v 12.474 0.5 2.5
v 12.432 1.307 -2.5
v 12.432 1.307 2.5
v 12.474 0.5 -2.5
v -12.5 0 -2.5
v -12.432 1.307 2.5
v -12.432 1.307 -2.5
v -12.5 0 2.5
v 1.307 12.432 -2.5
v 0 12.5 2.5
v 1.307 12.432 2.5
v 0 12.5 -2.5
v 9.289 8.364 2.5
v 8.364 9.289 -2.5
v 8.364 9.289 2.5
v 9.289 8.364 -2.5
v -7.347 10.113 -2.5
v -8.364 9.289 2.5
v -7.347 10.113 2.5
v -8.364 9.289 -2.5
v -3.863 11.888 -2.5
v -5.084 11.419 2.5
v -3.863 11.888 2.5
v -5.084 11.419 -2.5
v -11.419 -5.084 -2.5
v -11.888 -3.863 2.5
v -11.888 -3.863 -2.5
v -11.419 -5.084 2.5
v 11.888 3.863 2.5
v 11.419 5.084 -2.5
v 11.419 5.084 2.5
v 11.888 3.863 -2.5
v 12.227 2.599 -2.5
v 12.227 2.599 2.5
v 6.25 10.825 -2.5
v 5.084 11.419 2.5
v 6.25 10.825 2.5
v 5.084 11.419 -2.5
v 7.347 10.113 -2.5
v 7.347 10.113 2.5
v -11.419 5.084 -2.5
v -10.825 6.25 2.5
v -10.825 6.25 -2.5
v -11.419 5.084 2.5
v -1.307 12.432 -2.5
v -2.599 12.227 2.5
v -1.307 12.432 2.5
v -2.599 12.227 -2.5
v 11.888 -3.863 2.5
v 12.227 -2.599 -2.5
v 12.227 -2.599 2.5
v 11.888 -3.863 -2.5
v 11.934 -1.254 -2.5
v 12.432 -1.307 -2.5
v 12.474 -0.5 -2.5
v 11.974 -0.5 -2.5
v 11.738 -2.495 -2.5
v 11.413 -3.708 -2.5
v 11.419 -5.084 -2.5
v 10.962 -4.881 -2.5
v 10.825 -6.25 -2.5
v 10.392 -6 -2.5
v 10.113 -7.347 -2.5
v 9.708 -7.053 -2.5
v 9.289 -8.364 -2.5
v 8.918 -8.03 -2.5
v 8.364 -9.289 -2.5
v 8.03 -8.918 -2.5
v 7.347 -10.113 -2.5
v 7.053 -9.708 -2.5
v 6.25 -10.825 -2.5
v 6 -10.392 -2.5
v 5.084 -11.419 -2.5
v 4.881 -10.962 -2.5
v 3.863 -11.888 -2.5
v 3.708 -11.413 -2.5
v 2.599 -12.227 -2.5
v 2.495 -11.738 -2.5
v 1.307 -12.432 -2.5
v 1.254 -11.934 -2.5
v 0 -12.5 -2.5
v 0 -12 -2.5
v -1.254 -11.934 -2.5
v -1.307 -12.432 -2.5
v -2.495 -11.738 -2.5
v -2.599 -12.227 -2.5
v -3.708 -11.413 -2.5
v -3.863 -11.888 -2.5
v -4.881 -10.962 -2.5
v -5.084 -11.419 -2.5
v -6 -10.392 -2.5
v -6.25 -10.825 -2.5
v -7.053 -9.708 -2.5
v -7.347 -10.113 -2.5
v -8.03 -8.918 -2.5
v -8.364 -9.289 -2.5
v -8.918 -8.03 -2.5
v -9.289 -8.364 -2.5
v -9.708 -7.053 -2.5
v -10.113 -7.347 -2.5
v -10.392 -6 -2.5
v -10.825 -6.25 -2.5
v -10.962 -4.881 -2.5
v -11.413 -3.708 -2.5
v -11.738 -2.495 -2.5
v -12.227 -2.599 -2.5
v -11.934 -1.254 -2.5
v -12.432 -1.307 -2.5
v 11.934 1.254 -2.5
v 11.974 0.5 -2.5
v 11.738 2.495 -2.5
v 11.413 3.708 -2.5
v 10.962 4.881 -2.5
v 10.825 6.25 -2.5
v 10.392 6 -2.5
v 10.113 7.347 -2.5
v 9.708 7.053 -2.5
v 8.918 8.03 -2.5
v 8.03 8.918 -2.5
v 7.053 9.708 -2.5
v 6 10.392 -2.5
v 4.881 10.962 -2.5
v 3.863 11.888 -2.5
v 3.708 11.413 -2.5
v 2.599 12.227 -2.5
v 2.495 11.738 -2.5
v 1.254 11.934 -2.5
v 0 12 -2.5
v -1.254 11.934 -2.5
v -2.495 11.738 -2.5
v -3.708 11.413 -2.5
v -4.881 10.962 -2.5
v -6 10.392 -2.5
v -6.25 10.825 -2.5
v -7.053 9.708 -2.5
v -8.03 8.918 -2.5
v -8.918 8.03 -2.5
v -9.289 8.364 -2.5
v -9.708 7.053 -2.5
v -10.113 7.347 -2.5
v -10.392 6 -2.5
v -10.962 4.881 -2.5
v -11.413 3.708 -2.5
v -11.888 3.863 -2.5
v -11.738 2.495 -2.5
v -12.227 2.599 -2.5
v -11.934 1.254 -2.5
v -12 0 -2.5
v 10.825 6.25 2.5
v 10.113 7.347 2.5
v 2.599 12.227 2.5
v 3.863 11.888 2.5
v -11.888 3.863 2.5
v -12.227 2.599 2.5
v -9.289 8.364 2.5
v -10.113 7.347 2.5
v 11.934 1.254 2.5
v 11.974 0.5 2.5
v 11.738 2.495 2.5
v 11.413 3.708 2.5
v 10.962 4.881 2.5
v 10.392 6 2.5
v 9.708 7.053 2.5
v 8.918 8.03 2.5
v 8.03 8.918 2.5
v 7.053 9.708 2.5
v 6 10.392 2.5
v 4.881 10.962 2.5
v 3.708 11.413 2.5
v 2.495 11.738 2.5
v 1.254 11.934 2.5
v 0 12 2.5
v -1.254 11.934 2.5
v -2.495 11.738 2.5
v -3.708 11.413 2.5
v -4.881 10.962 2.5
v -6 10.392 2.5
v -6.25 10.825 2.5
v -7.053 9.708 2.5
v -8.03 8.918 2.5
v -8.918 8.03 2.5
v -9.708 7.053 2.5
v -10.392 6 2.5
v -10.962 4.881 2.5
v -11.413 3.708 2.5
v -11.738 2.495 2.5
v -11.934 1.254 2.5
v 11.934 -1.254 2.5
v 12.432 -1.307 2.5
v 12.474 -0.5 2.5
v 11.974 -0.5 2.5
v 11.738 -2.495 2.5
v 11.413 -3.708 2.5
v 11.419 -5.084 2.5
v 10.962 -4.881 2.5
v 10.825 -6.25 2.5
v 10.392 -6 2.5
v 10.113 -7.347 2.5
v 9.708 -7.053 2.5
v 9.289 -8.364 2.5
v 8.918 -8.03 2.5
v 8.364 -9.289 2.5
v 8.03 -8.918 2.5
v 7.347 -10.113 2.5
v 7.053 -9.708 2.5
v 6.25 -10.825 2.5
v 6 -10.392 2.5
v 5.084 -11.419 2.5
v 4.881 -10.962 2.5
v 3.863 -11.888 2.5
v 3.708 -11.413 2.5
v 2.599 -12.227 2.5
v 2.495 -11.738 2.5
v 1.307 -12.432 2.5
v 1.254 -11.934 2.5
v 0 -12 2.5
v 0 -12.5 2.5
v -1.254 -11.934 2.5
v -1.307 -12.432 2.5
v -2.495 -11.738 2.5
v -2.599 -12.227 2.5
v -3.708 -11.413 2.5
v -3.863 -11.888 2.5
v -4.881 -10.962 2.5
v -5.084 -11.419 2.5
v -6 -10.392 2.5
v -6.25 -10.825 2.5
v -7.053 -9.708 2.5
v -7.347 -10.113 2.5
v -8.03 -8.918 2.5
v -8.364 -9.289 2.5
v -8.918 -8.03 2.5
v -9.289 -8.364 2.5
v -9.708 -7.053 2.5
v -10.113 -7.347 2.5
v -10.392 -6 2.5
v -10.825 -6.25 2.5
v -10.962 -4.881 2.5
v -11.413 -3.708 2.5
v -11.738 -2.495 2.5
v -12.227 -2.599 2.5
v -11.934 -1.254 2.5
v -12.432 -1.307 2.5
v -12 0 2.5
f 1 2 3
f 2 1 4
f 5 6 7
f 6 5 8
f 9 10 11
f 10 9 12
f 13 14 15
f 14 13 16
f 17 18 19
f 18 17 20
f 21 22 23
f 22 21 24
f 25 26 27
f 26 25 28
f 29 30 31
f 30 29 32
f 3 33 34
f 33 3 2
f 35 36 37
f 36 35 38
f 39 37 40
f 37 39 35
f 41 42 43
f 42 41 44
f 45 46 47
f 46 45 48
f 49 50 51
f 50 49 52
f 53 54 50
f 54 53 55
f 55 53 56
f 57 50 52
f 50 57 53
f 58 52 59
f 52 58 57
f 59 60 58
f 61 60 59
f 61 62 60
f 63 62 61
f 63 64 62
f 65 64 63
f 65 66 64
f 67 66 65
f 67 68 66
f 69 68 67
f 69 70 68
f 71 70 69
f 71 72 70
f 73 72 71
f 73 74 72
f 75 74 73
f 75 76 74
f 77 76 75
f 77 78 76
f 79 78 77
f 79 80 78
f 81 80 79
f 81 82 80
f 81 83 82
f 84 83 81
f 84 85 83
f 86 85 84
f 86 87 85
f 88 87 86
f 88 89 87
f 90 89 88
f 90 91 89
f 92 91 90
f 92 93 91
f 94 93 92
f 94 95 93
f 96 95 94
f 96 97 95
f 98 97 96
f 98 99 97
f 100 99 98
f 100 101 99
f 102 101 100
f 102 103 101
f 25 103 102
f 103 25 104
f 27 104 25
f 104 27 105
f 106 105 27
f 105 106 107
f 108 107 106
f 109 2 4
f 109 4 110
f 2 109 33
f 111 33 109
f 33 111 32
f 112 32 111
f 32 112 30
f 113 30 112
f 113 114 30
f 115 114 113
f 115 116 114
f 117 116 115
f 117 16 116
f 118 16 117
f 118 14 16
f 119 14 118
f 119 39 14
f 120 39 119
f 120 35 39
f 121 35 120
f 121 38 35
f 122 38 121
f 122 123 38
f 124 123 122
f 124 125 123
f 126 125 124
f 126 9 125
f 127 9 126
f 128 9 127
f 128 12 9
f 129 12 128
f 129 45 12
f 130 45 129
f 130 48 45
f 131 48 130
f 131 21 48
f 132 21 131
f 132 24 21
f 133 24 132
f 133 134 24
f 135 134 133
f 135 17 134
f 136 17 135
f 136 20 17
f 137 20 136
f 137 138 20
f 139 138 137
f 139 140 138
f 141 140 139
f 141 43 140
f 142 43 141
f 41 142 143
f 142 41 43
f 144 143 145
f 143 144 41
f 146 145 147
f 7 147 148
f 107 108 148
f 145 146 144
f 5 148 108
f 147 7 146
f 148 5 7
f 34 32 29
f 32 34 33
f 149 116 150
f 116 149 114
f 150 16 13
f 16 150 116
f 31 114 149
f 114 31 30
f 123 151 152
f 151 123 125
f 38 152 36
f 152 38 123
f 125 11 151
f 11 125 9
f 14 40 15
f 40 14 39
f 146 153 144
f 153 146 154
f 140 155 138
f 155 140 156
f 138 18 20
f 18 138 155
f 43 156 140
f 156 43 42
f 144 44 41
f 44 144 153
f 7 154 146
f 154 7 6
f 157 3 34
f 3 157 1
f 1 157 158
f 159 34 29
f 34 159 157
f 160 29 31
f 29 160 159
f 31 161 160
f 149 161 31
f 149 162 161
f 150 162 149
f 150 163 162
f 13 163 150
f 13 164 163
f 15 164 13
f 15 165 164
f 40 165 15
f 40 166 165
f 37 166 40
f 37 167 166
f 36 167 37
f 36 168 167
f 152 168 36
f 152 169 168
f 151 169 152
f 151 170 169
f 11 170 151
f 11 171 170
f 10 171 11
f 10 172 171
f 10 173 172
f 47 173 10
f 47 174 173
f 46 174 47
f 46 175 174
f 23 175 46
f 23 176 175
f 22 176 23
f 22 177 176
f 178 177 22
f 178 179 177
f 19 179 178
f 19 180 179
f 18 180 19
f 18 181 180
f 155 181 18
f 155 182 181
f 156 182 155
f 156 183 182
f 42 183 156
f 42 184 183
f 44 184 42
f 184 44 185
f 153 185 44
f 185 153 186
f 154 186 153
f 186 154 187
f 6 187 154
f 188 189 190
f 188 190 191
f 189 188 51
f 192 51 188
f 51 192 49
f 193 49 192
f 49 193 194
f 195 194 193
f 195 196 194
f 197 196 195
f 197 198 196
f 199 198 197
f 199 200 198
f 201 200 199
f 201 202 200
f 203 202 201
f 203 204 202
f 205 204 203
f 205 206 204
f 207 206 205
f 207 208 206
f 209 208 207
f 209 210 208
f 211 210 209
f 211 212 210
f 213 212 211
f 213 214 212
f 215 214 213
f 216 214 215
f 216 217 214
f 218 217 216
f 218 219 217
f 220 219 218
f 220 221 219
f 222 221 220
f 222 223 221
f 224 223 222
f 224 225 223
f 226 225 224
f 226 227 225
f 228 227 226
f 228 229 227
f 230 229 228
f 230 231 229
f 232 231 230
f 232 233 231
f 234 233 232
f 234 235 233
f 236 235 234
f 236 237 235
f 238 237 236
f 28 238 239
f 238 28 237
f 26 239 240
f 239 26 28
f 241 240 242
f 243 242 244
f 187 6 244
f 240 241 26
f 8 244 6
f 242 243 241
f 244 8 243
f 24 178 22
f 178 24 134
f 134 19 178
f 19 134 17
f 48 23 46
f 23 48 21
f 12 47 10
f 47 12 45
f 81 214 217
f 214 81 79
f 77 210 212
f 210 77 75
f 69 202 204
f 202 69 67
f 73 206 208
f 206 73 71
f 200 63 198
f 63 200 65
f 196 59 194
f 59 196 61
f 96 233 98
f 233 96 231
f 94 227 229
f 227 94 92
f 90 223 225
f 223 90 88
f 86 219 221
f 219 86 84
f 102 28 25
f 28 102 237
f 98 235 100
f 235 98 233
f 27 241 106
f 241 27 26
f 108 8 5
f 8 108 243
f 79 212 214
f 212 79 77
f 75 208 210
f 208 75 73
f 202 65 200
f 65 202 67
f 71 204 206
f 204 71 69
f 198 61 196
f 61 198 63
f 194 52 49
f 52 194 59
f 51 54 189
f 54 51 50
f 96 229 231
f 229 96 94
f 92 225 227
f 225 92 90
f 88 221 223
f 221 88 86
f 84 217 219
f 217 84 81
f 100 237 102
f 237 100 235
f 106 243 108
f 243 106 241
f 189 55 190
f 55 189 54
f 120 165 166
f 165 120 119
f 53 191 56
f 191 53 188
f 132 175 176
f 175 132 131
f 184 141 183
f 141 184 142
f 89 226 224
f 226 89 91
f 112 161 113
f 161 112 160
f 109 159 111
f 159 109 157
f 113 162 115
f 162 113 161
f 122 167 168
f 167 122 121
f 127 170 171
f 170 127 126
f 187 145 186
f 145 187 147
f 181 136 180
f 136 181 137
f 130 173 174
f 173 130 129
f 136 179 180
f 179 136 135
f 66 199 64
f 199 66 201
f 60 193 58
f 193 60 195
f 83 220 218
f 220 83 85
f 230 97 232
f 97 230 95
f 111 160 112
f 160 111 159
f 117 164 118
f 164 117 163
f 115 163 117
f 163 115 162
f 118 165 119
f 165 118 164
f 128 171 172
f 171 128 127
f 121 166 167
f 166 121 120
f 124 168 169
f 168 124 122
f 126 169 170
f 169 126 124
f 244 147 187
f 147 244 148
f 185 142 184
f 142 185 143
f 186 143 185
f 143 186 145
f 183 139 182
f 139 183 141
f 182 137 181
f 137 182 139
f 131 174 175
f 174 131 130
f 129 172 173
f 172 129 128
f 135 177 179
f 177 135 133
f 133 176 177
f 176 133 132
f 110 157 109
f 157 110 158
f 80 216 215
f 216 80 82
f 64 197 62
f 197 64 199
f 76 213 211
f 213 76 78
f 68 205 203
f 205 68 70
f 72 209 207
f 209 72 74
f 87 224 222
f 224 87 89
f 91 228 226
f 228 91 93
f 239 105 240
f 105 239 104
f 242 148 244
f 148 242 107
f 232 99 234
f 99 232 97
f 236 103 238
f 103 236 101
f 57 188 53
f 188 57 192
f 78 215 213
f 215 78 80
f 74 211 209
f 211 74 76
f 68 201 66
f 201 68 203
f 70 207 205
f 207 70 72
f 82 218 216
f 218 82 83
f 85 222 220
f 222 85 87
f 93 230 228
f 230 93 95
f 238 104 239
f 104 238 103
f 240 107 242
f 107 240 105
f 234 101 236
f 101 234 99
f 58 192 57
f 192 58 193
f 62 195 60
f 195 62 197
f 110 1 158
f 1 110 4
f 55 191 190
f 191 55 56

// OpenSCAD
$fs = 1;
$fa = 6;

difference() {
  cylinder(d=25, h=5, center=true);
  cylinder(d=24, h=100, center=true);
  translate([50,0,0]) cube(size=[100, 1, 100], center=true);
}
